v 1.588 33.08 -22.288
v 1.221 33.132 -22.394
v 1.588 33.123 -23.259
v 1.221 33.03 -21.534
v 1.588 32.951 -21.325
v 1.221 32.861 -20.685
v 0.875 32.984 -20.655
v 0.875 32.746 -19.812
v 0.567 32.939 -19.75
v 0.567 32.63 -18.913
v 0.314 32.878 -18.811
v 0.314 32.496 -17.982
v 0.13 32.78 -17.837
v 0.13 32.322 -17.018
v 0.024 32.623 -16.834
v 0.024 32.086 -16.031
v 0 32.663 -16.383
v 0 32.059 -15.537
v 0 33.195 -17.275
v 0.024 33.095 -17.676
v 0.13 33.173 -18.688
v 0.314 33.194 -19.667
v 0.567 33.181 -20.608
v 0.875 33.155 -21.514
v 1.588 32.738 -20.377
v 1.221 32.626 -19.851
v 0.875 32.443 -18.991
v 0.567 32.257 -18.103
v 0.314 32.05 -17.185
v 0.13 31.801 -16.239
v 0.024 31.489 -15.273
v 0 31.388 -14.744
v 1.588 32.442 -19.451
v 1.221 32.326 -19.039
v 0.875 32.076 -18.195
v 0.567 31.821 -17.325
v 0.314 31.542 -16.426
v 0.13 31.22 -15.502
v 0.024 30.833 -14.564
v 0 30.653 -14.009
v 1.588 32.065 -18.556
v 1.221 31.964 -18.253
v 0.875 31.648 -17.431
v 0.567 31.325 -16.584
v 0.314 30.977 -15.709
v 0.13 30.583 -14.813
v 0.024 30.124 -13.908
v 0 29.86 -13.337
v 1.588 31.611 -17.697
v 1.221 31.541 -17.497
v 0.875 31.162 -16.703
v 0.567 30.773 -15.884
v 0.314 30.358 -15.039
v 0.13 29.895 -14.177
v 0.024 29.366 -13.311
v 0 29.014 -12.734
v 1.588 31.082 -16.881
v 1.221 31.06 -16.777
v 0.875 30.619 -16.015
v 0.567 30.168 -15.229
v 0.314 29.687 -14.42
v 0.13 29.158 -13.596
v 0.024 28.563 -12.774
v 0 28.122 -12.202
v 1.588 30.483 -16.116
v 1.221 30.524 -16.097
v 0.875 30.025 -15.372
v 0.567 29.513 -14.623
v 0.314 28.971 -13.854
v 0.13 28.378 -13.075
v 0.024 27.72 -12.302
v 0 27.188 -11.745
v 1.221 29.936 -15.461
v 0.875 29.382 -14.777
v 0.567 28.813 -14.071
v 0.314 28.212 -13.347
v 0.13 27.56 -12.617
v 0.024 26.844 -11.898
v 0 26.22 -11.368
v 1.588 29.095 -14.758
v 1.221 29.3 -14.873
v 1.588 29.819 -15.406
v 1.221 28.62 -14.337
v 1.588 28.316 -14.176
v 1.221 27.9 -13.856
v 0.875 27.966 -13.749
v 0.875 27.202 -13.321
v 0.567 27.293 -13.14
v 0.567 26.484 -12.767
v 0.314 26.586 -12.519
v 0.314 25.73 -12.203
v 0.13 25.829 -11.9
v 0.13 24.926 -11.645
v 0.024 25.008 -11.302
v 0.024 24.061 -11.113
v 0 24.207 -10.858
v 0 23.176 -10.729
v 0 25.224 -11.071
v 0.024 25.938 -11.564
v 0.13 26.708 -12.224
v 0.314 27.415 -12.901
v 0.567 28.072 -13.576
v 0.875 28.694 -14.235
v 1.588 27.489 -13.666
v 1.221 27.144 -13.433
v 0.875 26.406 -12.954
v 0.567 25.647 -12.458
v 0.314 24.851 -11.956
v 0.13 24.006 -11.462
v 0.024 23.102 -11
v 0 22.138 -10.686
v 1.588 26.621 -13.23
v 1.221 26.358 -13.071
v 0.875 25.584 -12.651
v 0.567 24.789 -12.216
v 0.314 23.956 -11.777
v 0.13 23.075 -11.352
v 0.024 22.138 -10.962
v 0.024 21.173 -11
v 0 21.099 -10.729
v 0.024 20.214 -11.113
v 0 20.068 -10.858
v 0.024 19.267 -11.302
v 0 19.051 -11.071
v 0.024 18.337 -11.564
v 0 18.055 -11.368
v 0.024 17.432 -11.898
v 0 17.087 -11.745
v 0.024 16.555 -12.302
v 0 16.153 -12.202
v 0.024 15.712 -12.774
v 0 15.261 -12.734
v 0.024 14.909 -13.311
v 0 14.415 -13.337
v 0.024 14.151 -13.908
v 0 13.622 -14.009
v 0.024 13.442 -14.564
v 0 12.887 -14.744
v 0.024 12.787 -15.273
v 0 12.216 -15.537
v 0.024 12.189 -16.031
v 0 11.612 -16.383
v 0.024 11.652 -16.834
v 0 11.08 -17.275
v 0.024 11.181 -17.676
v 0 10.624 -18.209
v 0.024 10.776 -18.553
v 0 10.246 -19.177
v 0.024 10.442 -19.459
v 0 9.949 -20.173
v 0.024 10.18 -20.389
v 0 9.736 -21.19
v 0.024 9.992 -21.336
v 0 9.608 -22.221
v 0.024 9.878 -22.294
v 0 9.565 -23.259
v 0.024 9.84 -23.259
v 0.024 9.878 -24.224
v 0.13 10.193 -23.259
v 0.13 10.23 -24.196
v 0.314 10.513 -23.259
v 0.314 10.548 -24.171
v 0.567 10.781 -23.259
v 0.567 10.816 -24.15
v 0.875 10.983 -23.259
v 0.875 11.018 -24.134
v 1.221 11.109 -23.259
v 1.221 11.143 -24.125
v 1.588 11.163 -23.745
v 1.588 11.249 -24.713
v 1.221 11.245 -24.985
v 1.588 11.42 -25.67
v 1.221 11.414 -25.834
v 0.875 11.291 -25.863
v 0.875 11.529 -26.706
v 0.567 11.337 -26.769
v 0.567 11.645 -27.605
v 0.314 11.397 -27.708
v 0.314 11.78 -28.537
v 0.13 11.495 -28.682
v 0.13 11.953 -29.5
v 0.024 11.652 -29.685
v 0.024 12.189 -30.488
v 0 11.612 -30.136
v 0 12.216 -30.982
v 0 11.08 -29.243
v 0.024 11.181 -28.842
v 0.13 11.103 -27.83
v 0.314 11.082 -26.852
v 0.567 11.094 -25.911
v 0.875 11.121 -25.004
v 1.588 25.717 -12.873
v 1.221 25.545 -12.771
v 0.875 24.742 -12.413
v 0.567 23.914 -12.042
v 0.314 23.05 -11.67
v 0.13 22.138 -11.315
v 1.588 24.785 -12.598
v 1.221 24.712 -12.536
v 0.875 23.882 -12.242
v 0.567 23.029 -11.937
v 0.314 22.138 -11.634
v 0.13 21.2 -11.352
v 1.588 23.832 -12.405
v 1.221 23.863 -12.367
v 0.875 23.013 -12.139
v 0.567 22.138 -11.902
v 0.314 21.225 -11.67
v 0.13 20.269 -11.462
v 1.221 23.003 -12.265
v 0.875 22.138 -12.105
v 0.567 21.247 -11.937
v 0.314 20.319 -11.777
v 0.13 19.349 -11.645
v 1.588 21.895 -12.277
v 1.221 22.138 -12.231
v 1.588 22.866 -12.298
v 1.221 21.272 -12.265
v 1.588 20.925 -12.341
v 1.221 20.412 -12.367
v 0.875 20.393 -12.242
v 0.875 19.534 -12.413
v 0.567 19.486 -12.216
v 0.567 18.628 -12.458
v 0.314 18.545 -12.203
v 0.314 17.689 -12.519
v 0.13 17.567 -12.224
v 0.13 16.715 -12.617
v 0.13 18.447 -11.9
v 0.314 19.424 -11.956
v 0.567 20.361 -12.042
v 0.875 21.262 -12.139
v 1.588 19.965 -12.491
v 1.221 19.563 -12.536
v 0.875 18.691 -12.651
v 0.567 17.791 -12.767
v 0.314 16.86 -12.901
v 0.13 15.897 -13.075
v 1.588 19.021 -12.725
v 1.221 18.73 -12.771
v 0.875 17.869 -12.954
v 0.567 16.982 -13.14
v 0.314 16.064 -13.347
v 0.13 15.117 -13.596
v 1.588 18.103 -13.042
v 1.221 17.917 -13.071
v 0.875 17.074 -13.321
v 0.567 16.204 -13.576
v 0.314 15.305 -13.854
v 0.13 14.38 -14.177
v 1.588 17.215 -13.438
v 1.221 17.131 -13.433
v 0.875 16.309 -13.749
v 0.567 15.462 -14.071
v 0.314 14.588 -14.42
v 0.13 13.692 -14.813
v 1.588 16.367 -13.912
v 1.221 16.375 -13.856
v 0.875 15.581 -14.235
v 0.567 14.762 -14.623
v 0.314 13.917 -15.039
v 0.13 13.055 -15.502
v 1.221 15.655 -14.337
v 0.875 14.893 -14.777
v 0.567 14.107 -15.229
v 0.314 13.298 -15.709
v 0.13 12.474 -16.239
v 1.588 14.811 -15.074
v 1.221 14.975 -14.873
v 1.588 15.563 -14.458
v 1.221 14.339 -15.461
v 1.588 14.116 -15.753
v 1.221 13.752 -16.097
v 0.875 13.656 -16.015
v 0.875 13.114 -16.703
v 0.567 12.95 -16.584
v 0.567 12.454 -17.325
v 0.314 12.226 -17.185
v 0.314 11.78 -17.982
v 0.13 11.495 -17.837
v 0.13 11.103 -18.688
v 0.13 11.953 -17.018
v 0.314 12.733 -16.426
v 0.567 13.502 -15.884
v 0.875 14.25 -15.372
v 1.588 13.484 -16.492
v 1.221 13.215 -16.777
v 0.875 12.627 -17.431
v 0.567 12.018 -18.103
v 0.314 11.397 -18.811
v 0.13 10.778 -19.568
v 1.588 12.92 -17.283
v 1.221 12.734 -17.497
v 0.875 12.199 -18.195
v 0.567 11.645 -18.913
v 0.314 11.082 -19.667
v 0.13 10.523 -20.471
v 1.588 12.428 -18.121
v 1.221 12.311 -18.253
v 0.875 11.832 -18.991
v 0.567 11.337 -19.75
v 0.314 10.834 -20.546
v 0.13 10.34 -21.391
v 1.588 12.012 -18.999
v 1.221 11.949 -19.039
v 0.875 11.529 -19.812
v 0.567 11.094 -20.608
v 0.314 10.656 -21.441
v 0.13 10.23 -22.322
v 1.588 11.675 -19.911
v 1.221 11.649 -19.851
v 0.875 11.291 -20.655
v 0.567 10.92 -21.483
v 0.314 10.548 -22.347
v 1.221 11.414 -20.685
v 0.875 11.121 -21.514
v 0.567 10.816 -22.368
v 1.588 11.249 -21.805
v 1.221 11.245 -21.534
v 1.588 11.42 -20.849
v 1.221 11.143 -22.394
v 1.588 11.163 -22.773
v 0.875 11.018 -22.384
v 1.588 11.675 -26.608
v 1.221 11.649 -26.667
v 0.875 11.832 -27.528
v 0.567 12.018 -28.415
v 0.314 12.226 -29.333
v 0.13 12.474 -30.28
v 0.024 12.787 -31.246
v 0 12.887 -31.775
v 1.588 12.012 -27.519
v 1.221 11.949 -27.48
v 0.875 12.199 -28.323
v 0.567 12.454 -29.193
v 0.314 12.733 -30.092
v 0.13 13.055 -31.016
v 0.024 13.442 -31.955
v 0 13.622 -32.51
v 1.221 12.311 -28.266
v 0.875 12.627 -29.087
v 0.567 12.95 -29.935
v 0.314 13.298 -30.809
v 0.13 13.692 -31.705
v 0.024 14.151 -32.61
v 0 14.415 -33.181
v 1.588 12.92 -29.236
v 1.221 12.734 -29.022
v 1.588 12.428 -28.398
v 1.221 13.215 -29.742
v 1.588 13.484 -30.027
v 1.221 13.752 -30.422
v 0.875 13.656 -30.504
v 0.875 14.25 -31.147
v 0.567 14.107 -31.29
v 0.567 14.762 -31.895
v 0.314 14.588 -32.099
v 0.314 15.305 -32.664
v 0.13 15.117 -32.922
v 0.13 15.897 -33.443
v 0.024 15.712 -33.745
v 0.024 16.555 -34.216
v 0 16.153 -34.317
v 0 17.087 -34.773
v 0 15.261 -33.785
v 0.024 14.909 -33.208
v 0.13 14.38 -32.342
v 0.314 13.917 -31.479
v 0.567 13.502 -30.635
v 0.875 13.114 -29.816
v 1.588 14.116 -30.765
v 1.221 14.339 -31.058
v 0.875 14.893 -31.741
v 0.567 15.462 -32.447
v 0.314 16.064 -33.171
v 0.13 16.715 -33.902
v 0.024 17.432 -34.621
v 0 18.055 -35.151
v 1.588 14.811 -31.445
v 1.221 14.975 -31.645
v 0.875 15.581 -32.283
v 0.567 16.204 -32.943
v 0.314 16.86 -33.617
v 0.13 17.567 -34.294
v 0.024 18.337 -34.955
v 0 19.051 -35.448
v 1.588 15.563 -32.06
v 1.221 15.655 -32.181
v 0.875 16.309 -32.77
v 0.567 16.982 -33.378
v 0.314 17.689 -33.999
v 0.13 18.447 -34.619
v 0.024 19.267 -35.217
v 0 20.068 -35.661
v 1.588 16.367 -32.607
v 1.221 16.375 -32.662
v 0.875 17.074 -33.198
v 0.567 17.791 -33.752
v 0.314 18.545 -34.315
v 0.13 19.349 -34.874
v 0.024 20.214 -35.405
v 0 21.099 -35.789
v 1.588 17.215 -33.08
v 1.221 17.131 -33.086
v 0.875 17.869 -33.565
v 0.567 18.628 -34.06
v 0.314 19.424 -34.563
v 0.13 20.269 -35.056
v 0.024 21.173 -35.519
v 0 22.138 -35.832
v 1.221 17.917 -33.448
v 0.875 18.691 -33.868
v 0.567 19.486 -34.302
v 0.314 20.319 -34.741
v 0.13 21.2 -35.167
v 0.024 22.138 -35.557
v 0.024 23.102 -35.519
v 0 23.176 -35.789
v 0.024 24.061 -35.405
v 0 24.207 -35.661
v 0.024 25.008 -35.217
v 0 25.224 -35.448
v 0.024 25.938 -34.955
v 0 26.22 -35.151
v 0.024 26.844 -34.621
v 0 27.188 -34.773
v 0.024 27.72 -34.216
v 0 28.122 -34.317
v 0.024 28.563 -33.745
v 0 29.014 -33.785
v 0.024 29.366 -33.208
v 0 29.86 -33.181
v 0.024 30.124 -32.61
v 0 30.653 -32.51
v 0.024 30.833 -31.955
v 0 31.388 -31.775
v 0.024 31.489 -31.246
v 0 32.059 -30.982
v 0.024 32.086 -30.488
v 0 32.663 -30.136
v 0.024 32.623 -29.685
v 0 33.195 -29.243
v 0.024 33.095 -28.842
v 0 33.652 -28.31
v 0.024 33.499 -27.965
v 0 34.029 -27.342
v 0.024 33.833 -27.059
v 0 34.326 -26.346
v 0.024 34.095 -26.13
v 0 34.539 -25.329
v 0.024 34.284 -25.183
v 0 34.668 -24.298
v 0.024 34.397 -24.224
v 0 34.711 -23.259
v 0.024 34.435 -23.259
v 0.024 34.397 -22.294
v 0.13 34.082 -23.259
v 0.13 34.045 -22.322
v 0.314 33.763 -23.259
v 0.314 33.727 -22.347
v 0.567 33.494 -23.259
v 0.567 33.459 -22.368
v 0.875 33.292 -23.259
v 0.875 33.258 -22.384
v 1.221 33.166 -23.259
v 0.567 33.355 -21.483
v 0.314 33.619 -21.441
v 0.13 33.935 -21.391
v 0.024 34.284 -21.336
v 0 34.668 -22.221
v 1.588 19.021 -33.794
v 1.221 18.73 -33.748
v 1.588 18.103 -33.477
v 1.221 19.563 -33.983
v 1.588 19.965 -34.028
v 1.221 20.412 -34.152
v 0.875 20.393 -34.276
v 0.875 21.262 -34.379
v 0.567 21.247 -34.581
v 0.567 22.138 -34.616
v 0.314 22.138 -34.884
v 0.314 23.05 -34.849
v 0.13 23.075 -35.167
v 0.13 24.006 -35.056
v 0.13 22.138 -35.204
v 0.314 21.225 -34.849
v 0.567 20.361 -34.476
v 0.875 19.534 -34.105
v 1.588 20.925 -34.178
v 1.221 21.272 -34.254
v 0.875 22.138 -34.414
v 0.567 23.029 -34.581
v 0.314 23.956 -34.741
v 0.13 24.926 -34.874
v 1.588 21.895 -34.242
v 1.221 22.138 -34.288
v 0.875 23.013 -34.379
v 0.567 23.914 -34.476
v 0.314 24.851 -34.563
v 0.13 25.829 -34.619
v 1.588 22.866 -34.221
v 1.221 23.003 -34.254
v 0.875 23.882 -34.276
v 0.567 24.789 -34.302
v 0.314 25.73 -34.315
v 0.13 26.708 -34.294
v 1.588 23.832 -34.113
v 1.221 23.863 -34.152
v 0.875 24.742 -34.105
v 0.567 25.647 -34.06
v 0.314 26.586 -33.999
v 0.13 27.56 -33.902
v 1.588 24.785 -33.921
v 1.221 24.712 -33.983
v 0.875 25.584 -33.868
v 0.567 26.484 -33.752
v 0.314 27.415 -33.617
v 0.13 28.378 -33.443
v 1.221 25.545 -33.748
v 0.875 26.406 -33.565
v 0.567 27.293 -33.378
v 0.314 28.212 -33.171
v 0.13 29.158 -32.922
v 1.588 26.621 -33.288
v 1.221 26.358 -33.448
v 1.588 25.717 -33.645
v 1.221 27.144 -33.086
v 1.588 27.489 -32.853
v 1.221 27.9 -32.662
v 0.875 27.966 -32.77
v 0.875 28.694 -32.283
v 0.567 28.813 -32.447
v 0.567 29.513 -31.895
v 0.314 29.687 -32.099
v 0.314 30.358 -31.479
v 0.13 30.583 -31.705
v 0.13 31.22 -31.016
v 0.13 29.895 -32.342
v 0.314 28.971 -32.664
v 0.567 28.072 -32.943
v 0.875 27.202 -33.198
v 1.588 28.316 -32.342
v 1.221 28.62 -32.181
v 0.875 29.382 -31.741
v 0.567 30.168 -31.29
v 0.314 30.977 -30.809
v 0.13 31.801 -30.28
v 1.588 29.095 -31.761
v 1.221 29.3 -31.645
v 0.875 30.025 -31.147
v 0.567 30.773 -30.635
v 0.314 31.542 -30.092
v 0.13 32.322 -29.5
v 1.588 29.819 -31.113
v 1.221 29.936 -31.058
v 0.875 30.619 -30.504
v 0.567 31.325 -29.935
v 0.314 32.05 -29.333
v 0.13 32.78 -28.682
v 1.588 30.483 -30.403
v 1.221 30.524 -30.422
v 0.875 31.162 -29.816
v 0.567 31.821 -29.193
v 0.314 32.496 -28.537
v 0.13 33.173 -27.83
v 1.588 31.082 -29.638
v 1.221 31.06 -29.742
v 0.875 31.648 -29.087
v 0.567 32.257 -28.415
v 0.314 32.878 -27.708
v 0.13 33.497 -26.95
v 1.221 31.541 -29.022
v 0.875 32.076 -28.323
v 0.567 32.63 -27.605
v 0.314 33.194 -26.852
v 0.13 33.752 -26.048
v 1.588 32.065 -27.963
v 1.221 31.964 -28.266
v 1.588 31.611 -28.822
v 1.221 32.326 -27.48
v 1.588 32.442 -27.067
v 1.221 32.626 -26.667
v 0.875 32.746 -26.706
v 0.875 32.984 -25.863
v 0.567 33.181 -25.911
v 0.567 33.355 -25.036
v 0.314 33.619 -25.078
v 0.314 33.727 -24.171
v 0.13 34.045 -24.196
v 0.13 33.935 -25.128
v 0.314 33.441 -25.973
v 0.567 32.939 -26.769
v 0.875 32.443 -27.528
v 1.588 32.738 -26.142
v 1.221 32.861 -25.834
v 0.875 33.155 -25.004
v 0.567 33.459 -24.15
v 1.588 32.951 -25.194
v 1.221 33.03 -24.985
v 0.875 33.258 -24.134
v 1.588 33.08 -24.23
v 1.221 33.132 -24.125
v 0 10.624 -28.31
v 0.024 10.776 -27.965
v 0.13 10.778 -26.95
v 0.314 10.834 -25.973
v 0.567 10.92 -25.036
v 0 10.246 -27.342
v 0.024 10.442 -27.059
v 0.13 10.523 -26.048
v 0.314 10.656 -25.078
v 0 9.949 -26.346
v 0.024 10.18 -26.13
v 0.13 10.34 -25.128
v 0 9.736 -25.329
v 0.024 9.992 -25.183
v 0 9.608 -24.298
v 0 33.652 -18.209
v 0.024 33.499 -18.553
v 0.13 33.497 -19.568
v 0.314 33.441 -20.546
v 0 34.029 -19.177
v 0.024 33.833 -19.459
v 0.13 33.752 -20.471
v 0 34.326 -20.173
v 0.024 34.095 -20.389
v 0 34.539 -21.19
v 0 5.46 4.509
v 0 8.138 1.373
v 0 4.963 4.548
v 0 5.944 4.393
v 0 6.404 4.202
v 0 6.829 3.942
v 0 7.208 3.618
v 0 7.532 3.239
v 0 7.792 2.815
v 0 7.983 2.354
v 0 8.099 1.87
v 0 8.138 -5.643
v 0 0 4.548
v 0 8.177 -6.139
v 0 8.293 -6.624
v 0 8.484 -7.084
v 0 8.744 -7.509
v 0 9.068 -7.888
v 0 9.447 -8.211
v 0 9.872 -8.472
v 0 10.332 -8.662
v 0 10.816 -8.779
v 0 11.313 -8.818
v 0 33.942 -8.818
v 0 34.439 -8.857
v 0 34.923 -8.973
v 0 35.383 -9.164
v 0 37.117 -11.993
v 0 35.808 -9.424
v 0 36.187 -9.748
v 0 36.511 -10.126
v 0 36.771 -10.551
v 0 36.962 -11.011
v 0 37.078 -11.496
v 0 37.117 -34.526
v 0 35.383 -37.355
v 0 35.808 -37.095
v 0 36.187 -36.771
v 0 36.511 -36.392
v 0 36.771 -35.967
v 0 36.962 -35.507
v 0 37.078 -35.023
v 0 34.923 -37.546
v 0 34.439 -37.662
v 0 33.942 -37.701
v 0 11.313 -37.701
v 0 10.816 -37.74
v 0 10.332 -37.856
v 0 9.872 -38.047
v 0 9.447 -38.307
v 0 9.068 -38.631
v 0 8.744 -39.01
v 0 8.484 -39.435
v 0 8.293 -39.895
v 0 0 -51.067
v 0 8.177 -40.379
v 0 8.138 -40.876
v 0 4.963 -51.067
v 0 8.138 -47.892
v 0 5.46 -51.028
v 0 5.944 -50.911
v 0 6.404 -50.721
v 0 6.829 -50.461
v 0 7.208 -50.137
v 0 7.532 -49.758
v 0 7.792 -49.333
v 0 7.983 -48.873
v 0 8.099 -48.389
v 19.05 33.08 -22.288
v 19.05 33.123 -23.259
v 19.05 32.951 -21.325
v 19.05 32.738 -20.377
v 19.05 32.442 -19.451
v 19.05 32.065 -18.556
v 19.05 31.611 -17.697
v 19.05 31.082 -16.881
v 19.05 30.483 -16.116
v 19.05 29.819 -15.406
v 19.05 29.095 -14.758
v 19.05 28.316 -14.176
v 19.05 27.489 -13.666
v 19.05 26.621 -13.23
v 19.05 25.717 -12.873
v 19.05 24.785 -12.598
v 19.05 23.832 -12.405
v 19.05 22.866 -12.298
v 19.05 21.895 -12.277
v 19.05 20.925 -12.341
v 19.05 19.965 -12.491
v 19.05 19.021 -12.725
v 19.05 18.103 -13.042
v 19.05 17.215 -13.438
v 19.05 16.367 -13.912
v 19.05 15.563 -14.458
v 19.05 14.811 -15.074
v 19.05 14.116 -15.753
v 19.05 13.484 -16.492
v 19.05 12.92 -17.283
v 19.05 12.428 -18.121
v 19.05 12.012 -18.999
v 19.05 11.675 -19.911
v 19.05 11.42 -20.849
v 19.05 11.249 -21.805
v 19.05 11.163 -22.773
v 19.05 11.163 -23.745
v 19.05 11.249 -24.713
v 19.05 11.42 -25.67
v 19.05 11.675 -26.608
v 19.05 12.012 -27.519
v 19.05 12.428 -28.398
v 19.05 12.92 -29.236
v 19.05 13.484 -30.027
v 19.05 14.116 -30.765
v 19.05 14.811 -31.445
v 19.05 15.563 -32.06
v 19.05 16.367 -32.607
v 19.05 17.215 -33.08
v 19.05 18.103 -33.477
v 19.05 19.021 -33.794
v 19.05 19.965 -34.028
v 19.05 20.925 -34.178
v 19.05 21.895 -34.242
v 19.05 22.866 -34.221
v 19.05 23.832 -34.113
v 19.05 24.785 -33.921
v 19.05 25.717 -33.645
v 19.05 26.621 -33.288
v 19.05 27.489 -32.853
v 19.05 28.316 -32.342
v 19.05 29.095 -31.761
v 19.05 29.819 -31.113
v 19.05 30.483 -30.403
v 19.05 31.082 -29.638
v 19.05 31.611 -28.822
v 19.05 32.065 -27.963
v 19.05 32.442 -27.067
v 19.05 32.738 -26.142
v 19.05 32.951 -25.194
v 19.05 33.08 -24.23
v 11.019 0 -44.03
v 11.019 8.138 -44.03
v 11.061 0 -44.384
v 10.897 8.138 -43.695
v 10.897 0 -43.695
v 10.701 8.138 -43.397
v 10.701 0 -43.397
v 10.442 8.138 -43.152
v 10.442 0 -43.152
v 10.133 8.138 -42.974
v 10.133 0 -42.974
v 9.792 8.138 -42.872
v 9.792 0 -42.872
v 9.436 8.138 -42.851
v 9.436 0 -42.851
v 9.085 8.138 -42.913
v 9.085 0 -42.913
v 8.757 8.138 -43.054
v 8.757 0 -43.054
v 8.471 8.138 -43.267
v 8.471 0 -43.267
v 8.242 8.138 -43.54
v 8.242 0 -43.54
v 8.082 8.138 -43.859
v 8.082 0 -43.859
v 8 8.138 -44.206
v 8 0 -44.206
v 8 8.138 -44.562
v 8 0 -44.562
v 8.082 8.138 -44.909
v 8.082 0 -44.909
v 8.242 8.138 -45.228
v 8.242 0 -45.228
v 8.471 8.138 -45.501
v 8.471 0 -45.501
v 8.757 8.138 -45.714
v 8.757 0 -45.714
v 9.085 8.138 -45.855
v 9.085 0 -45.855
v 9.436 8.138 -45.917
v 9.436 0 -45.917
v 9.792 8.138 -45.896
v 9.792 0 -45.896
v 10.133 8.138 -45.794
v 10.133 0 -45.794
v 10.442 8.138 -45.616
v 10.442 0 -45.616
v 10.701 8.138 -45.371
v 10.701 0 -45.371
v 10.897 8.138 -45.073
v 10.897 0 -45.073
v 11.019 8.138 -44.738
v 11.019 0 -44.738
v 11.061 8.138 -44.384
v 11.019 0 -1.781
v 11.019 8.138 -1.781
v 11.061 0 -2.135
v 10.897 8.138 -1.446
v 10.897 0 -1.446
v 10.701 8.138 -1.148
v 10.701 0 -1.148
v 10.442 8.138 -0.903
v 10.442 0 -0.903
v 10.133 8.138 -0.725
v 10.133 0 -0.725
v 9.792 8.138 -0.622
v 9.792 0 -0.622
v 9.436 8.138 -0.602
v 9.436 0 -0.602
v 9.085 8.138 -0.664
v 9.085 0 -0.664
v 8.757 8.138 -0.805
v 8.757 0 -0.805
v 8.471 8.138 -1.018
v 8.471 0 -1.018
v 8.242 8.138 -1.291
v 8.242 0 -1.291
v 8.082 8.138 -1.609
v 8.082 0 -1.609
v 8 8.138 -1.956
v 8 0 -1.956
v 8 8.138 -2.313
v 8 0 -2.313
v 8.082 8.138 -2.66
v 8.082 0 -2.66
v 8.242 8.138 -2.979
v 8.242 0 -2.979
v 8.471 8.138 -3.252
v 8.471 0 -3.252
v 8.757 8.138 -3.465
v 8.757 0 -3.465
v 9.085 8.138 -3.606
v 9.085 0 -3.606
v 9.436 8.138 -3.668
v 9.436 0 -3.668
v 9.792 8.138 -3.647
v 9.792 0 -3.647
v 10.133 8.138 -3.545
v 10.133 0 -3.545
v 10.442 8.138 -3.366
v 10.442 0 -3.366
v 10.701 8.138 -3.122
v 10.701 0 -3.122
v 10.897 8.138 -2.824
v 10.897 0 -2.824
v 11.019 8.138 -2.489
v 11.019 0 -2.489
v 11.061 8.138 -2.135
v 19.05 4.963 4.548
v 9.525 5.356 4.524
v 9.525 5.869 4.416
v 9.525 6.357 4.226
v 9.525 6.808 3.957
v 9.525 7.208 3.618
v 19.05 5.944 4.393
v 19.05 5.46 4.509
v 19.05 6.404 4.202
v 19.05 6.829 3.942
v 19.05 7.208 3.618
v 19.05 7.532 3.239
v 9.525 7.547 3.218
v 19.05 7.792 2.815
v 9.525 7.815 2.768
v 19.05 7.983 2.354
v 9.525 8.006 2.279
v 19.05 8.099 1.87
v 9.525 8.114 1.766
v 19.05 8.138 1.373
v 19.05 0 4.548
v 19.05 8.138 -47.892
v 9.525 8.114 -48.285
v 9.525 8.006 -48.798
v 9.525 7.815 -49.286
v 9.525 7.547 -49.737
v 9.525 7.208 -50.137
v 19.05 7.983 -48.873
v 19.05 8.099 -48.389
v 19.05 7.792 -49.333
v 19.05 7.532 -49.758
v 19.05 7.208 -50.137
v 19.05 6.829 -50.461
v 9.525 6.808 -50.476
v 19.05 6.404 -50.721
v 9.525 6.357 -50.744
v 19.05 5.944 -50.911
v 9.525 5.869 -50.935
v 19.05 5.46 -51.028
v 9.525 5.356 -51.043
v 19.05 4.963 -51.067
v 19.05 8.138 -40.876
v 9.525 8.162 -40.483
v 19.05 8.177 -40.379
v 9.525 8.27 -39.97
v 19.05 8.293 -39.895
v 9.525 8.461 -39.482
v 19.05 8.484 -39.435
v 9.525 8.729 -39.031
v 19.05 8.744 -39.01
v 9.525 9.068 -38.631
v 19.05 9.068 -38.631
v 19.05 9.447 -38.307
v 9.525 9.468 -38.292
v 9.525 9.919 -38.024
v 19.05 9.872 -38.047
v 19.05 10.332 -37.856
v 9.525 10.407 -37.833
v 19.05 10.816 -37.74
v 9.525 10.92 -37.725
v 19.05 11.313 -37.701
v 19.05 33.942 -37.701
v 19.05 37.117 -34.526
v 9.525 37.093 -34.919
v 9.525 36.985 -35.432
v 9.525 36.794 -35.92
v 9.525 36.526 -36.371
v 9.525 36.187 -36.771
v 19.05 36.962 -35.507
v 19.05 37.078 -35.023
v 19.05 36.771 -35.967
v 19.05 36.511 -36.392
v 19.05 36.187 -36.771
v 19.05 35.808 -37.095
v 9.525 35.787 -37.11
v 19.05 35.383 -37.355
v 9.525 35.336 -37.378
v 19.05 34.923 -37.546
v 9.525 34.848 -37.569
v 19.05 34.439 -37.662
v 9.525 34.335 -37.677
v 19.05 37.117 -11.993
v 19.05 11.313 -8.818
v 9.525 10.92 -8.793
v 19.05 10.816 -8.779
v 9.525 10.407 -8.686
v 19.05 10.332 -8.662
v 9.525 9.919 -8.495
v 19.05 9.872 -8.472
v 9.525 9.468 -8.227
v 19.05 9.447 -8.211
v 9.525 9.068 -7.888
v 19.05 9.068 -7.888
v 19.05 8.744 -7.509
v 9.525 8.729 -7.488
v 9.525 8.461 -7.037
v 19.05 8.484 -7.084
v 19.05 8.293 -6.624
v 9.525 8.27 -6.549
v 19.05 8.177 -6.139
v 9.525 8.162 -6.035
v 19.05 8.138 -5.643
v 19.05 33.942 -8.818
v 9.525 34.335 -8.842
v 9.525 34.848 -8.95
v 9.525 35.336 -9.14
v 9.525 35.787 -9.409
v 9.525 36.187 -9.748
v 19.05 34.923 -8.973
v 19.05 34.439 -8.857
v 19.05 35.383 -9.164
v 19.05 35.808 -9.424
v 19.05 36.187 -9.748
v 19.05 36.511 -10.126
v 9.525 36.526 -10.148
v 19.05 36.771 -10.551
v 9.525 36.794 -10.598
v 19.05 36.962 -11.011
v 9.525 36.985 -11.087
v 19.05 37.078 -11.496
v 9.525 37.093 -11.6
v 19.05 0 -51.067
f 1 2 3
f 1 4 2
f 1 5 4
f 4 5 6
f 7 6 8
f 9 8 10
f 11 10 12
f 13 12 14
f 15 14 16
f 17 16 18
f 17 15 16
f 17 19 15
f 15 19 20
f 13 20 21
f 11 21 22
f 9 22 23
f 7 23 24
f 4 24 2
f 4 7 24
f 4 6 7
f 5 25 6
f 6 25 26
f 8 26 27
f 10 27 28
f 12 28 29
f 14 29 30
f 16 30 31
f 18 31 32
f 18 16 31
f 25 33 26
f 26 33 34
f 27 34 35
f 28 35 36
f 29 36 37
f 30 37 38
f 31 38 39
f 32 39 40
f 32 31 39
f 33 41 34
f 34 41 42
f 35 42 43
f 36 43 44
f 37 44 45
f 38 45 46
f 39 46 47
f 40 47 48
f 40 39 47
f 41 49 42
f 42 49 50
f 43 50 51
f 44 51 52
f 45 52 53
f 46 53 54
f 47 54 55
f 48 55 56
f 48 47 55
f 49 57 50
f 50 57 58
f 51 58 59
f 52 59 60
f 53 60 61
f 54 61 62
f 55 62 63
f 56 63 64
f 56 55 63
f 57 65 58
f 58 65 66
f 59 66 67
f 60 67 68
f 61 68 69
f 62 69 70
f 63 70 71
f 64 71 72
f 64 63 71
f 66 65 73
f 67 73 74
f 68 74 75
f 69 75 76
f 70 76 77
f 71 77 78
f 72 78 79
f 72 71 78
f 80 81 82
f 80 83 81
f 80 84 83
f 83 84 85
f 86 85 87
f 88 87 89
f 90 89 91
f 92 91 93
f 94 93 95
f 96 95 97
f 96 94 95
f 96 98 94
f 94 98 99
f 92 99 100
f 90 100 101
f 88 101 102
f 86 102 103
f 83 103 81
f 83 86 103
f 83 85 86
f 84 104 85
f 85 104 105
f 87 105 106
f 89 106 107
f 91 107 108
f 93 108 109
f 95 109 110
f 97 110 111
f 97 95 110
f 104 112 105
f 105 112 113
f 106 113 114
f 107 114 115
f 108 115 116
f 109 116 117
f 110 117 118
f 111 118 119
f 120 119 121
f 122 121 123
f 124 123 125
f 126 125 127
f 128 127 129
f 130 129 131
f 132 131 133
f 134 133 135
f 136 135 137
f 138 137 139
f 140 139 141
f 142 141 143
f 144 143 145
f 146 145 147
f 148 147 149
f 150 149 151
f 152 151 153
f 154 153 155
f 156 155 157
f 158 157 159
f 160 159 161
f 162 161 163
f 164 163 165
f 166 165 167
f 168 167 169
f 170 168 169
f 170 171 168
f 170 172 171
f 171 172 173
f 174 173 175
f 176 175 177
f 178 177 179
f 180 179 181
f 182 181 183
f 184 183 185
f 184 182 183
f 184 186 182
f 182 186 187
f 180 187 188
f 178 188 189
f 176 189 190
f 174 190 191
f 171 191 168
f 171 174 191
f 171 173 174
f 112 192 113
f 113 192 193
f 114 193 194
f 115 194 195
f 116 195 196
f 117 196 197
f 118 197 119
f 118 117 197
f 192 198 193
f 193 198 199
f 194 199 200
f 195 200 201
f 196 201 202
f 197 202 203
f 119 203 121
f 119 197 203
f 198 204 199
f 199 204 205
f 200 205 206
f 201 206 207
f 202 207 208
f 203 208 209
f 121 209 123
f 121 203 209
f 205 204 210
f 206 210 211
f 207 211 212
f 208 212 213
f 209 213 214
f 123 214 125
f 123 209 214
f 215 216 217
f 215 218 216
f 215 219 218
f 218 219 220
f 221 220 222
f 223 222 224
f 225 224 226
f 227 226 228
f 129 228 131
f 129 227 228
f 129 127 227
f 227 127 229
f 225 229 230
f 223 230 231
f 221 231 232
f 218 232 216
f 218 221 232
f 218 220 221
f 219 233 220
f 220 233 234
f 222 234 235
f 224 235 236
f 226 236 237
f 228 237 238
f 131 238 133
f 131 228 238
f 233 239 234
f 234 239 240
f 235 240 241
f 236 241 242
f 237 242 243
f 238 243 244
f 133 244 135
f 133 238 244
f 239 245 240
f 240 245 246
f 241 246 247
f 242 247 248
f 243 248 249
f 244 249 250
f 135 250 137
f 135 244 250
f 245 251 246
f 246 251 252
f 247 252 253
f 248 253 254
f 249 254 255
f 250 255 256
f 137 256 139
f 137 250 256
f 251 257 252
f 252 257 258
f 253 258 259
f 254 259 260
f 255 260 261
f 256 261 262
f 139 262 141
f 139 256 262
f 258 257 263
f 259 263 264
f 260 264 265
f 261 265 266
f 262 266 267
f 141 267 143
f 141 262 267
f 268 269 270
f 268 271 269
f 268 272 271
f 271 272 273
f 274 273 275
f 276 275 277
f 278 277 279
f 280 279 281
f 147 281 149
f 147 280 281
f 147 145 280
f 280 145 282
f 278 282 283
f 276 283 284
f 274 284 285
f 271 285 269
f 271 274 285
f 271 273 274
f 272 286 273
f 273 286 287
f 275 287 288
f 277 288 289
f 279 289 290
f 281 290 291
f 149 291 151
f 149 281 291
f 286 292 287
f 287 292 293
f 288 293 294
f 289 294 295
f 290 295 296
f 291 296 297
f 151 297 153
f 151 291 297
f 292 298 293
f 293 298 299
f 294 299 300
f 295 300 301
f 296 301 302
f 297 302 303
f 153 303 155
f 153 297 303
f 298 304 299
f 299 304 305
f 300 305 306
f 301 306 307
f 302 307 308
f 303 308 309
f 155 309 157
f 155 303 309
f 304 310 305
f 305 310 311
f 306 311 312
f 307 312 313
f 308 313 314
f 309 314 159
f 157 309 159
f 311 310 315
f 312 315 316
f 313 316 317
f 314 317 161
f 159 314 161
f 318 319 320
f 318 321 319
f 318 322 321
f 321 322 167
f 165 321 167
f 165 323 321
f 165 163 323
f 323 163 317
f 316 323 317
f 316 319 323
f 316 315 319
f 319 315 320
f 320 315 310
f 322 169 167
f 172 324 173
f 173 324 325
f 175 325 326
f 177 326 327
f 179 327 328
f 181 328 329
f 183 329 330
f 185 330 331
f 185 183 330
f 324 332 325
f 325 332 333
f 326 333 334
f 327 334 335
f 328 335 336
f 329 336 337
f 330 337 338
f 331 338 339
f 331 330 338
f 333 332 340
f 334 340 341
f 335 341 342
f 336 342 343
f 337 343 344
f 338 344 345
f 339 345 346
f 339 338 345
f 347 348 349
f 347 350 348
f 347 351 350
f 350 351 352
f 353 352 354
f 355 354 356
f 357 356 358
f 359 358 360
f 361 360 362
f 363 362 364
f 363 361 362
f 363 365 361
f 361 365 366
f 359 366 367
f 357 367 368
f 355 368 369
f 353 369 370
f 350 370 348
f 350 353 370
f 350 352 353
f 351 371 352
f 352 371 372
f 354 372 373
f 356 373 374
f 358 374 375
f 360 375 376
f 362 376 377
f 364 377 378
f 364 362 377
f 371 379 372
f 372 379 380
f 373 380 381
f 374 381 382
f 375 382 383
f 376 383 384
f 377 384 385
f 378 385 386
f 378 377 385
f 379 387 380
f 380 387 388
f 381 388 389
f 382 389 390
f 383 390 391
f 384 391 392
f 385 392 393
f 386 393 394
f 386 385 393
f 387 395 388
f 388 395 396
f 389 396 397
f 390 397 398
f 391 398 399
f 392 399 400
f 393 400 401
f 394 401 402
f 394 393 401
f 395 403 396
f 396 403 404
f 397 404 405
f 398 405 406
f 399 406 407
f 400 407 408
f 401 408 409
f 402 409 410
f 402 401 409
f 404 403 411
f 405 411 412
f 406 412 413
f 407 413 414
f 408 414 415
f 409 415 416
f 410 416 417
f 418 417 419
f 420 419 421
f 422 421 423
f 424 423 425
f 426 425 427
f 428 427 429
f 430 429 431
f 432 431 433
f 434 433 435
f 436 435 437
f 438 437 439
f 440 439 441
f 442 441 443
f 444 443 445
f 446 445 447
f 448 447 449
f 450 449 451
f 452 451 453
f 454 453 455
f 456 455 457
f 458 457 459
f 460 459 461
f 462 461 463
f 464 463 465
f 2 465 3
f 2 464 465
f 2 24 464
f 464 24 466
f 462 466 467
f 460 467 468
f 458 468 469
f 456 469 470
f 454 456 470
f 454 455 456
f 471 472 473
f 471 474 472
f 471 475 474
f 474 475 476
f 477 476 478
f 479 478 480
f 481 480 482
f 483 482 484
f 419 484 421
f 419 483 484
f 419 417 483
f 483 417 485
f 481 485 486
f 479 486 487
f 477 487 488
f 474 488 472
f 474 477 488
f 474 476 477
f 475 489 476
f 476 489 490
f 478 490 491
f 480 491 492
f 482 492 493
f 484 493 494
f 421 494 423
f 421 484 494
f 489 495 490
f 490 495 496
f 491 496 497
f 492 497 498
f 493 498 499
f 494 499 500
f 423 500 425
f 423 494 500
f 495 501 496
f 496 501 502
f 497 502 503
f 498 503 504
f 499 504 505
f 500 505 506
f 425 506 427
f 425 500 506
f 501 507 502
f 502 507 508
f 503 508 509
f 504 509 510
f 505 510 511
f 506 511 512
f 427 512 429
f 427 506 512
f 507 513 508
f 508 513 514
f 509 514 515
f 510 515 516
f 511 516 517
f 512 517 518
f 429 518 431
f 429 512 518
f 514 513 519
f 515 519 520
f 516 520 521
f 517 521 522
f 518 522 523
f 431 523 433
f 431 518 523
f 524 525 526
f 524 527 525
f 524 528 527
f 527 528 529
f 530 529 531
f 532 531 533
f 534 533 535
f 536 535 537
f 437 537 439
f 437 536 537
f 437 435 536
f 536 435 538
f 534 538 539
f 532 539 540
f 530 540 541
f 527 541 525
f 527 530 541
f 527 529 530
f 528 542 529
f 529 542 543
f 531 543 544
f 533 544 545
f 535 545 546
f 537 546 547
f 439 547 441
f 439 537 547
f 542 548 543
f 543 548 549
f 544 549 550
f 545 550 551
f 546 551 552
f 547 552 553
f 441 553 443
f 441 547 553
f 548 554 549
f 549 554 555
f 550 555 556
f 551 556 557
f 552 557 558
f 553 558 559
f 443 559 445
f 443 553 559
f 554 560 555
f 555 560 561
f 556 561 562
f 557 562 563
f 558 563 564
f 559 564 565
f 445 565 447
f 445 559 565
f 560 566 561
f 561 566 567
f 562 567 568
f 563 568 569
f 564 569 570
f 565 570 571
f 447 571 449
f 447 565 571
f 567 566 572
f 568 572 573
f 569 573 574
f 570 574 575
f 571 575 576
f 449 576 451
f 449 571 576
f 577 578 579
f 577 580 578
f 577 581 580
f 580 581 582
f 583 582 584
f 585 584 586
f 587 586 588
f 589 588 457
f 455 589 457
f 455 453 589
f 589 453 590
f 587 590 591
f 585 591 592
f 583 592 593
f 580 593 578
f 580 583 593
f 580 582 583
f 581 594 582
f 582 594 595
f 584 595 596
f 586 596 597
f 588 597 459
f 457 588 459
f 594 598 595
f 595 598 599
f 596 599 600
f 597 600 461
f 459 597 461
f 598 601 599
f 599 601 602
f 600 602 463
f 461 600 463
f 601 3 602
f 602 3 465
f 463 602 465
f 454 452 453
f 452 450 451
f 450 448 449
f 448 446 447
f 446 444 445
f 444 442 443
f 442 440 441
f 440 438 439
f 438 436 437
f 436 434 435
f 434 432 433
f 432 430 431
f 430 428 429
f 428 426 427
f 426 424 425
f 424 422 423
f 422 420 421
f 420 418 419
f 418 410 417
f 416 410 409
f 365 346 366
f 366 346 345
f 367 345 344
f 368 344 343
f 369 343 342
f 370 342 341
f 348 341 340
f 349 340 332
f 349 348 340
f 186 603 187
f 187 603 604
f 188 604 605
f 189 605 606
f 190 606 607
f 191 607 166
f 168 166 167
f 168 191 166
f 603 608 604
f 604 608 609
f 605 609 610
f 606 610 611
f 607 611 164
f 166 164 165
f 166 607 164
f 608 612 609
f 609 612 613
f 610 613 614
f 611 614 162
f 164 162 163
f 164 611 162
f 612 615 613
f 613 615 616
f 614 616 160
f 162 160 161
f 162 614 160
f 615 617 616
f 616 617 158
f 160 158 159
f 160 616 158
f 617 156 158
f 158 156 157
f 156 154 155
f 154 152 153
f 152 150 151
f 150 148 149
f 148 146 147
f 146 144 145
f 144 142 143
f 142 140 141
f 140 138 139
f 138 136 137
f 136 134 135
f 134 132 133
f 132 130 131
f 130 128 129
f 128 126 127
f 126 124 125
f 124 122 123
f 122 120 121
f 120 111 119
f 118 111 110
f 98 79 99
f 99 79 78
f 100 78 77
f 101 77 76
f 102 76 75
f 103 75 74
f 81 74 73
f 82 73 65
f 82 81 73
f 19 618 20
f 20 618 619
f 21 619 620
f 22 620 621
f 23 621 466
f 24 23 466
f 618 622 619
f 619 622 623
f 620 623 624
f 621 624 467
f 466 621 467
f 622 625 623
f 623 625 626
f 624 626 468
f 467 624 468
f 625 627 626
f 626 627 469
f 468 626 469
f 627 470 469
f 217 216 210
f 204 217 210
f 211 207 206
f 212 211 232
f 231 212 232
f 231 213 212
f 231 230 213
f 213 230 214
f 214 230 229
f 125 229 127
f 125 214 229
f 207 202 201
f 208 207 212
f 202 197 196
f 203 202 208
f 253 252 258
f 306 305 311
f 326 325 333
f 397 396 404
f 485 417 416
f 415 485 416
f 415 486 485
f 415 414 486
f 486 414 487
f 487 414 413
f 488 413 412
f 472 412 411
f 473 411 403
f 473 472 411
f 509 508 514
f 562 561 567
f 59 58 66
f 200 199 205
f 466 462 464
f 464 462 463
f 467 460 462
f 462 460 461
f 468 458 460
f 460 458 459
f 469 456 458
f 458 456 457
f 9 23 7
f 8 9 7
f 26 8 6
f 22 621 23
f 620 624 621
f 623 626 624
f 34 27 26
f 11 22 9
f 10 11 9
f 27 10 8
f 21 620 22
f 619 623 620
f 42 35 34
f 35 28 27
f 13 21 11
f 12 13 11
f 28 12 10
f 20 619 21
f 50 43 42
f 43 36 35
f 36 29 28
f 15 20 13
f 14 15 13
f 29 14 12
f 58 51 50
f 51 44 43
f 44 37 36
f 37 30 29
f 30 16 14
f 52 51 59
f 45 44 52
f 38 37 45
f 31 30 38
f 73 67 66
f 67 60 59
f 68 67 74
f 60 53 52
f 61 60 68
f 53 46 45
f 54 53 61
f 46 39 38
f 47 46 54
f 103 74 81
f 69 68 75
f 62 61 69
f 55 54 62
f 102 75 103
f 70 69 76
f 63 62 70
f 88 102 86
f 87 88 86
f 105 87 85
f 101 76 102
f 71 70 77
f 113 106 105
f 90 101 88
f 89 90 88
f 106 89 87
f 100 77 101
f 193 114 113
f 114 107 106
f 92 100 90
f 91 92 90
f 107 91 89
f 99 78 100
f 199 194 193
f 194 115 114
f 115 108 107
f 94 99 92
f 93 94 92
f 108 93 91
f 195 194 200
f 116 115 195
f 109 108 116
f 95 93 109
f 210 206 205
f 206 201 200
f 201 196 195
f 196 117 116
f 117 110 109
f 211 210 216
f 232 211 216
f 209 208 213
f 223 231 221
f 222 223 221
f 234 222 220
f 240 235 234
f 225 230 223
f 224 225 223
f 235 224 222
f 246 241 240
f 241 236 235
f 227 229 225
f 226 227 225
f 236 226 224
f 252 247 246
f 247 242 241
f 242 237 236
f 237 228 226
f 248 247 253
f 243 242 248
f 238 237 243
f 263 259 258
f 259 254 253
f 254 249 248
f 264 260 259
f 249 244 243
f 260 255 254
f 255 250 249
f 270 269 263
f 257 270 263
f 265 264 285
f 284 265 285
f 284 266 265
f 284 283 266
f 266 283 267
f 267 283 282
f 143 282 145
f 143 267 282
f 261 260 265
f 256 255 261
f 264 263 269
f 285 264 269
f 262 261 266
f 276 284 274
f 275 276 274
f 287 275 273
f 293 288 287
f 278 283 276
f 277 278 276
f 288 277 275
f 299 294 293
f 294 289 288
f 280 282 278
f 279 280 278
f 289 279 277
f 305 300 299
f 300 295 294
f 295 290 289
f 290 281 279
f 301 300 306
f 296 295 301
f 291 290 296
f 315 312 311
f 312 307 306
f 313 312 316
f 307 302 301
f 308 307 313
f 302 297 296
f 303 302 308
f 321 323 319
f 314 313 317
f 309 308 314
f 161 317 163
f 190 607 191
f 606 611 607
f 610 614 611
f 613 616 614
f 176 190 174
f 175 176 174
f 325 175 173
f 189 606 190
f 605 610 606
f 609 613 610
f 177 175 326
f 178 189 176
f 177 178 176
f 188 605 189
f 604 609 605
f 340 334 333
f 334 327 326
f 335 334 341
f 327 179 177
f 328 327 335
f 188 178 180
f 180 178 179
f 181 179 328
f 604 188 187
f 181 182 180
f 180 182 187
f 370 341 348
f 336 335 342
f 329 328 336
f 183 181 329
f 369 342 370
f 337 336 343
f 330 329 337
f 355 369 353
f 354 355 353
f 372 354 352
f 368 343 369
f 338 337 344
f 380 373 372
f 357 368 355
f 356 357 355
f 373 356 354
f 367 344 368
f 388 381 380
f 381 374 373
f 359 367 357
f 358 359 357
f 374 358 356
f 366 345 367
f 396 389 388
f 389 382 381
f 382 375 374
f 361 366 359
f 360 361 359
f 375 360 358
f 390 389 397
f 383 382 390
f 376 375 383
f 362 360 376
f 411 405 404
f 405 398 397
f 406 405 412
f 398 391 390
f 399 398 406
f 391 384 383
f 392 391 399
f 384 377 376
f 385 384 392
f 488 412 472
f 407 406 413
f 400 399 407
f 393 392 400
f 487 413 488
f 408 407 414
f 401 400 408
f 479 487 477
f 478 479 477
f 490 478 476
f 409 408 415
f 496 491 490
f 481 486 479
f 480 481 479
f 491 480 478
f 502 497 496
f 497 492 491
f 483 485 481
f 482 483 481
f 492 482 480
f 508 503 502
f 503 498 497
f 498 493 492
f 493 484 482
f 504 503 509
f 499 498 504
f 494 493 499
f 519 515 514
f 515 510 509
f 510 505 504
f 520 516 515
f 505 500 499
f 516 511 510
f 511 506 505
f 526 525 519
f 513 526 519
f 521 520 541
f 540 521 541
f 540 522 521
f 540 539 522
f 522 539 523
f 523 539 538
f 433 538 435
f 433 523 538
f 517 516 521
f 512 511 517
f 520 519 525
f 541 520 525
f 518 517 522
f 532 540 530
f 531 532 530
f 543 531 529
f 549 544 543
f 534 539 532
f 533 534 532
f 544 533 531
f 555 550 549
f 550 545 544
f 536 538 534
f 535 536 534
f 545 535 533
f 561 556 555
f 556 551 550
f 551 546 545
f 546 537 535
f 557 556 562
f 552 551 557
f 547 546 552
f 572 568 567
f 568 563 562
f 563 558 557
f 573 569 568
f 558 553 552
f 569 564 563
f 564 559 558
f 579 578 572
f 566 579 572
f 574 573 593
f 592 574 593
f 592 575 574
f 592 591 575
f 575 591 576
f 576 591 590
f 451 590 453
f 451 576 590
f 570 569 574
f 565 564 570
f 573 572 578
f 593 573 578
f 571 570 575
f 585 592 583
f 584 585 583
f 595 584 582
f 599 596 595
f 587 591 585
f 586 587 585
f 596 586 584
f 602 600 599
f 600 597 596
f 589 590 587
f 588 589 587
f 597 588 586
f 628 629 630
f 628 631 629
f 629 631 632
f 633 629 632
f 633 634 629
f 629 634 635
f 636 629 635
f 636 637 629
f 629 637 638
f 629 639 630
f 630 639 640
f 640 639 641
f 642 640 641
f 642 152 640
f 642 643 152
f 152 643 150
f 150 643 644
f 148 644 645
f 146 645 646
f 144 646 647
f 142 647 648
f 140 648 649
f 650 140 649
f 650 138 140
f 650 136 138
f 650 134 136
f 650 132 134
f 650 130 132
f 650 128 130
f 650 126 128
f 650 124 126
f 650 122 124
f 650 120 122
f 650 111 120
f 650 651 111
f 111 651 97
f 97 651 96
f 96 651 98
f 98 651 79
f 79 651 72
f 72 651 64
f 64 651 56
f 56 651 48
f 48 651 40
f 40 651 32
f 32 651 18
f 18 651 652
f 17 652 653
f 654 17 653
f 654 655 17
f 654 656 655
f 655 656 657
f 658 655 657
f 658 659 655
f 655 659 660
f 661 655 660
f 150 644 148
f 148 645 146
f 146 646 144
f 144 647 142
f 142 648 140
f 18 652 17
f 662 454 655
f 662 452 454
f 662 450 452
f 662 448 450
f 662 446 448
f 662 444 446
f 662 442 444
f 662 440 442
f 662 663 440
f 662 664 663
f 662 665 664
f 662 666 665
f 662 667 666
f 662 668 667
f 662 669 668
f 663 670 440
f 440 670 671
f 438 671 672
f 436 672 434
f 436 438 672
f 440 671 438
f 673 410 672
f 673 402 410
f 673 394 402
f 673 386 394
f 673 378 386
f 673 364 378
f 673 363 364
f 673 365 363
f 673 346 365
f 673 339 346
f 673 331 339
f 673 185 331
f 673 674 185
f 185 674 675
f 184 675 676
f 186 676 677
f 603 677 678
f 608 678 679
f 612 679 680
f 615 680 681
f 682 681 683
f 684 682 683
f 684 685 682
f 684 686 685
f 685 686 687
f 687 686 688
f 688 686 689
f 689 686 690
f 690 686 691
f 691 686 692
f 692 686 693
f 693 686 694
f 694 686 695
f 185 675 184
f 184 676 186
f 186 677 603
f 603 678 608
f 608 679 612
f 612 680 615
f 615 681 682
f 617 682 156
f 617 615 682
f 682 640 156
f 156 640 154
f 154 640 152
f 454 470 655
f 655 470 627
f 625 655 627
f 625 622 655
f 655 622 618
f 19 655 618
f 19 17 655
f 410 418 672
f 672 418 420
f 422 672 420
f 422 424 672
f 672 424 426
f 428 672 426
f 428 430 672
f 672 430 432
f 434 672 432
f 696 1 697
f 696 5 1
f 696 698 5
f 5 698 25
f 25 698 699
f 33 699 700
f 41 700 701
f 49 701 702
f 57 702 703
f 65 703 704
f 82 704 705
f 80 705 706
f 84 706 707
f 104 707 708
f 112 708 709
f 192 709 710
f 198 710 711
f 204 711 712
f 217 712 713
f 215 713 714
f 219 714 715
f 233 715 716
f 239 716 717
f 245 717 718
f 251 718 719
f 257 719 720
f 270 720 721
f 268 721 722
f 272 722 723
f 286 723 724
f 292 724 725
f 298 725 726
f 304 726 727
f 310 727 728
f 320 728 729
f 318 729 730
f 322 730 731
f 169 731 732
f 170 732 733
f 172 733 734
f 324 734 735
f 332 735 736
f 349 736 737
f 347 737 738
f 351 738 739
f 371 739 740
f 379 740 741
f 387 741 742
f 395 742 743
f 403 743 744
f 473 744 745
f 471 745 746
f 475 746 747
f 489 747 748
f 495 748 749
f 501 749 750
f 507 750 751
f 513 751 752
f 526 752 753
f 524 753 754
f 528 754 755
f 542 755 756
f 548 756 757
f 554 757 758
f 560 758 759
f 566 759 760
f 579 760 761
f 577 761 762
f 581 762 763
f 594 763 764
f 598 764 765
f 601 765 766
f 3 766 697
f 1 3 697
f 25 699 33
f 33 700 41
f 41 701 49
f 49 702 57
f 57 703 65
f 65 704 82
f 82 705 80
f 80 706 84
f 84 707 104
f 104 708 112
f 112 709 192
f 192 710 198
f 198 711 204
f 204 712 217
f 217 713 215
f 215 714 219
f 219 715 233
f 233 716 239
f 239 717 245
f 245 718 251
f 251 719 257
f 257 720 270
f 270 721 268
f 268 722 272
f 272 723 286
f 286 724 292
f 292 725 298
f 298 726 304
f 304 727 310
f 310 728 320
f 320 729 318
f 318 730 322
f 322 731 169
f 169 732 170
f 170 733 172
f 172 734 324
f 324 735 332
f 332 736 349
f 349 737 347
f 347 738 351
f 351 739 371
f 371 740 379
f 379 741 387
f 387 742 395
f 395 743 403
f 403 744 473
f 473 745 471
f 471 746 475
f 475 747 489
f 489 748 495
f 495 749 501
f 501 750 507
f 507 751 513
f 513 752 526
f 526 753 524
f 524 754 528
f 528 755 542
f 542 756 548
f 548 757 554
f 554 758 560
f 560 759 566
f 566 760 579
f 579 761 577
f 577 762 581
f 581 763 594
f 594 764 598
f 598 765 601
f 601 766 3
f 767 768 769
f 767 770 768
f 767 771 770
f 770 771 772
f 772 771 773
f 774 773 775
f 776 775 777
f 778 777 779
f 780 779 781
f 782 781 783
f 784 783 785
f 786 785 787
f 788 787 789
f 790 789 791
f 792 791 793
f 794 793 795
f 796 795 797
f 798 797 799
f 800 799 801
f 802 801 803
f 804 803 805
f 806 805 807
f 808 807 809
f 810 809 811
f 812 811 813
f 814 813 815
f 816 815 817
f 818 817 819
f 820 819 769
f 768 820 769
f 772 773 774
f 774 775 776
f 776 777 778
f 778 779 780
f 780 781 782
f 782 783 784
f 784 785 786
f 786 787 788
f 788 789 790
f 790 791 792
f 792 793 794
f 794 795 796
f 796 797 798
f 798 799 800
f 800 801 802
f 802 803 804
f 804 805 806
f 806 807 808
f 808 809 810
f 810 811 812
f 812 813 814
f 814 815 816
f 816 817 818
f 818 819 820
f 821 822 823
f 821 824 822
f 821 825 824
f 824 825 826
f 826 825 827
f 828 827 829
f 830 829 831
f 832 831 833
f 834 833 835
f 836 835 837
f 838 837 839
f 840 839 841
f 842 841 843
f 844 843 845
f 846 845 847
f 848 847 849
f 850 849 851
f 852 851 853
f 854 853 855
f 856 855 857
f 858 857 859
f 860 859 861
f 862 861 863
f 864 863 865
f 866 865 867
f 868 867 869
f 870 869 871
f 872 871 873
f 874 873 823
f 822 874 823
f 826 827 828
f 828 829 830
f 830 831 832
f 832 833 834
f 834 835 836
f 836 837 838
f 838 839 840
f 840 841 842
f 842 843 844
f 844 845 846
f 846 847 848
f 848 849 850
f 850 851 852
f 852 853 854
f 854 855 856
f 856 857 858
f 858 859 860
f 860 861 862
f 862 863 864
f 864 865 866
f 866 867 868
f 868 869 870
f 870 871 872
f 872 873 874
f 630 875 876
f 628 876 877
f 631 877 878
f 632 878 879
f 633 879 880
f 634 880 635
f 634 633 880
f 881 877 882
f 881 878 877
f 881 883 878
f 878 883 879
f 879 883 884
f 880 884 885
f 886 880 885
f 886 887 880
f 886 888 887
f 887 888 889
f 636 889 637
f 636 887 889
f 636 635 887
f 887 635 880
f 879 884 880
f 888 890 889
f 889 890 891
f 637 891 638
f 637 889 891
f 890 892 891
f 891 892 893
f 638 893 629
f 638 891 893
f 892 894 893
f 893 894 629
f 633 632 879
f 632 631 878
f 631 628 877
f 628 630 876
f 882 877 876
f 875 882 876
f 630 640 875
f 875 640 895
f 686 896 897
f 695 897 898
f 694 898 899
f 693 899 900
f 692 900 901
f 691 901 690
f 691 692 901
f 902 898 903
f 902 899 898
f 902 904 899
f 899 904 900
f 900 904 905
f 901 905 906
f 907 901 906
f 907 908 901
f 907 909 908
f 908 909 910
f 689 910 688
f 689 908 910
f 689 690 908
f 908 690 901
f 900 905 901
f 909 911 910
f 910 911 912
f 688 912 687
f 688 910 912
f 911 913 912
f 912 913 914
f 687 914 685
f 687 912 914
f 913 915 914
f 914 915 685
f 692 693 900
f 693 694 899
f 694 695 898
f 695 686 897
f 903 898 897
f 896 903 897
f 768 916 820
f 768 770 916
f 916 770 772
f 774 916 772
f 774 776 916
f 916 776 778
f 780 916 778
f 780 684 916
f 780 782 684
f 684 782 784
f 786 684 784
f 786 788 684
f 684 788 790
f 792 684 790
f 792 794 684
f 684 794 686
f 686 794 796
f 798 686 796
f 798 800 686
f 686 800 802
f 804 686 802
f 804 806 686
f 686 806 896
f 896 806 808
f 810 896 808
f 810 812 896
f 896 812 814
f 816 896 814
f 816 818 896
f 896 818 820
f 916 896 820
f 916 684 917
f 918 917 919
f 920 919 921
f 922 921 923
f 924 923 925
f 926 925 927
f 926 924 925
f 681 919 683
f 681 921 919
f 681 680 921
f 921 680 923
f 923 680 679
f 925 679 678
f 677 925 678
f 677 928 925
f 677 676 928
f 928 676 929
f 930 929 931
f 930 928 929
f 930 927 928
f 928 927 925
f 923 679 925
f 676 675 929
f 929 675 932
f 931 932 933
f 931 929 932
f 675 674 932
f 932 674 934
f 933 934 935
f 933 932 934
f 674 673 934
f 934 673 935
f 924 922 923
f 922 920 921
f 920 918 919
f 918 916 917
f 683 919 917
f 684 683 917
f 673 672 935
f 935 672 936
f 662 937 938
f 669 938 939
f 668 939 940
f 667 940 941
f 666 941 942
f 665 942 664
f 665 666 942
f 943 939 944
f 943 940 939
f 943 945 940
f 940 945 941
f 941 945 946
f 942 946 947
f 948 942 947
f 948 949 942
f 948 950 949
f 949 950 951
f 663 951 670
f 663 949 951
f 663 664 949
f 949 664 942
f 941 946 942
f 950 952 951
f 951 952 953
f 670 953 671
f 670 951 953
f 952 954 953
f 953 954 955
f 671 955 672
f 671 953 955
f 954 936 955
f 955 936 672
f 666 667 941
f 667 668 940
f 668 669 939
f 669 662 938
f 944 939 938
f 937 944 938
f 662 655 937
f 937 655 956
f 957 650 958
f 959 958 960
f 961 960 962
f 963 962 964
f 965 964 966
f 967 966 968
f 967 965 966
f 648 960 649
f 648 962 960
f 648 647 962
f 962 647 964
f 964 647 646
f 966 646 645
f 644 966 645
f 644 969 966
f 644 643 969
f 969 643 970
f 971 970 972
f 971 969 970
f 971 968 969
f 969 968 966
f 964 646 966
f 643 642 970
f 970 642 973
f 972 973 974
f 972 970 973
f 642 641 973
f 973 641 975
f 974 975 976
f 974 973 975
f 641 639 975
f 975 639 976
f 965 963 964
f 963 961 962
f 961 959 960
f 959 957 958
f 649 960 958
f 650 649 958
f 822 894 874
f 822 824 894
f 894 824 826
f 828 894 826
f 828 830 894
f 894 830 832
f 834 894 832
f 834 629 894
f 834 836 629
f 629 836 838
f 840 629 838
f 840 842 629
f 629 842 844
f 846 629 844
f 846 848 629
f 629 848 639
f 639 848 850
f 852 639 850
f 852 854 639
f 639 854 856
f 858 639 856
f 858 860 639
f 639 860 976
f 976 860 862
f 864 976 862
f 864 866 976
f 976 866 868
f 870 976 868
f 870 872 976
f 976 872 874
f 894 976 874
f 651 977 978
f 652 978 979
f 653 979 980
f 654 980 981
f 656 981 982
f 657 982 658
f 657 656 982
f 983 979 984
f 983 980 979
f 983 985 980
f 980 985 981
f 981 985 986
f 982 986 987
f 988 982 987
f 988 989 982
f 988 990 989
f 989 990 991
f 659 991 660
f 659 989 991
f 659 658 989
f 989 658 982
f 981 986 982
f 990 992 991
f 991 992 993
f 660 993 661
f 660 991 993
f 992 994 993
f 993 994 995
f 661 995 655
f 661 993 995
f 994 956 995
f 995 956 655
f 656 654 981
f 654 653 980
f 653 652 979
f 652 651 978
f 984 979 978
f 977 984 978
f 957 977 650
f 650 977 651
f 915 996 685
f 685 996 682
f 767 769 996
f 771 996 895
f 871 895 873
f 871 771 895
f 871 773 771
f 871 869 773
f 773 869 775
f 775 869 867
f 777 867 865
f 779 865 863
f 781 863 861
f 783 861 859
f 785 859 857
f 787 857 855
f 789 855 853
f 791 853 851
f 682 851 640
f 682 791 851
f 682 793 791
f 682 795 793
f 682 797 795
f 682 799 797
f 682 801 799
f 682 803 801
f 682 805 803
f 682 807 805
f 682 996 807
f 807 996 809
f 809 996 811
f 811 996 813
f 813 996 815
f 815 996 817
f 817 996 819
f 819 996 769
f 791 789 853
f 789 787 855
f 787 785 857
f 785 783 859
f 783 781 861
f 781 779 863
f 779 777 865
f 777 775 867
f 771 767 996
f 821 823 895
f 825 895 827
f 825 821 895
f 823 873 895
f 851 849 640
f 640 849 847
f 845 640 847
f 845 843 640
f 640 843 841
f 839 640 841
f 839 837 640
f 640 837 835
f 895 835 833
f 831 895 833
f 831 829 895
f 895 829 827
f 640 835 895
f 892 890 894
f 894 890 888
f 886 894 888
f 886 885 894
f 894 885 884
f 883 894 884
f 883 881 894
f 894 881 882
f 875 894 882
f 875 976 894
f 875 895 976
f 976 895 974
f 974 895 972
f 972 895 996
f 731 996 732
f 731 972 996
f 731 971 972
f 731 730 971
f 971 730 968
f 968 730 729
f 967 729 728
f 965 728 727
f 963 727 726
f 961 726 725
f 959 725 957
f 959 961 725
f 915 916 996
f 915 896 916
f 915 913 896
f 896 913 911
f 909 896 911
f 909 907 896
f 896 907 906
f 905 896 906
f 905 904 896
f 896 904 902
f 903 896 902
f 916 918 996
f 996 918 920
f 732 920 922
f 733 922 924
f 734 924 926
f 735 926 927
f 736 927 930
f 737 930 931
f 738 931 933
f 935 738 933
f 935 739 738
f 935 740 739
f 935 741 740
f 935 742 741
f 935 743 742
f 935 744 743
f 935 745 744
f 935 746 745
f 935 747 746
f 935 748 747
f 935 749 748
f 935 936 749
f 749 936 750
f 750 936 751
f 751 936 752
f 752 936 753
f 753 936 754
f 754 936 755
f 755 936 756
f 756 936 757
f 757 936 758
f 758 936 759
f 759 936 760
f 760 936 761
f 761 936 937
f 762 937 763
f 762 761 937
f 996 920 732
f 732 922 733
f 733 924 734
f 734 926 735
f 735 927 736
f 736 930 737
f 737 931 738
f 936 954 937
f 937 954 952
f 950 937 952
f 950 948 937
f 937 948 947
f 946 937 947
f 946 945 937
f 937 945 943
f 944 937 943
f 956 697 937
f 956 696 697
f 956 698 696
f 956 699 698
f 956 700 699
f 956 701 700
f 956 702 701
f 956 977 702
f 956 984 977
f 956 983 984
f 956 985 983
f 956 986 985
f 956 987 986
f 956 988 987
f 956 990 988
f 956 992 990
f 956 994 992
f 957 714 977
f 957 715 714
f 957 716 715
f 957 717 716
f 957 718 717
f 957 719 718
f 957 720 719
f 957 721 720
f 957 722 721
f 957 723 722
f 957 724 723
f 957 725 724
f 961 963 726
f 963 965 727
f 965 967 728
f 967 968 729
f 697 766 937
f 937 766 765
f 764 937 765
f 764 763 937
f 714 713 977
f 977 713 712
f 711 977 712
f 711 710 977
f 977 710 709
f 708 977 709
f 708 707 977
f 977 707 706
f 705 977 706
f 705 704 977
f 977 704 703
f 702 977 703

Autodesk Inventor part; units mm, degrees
ref_plane "YZ Plane" through (0, 0, 0) normal (1, 0, 0) x (0, 1, 0)
ref_plane "XZ Plane" through (0, 0, 0) normal (0, 1, 0) x (-1, 0, 0)
ref_plane "XY Plane" through (0, 0, 0) normal (0, 0, 1) x (1, 0, 0)
sketch "Sketch1" plane through (0, 0, 0) normal (1, 0, 0) x (0, 1, 0)
  line L0 (0, 4.5482) -> (0, -51.0669)
  line L1 (0, -51.0669) -> (8.138, -51.0669)
  line L2 (8.138, -51.0669) -> (8.138, -37.701)
  line L3 (8.138, -37.701) -> (37.1169, -37.701)
  line L4 (37.1169, -37.701) -> (37.1169, -8.8176)
  line L5 (37.1169, -8.8176) -> (8.138, -8.8176)
  line L6 (8.138, -8.8176) -> (8.138, 4.5482)
  line L7 (8.138, 4.5482) -> (0, 4.5482)
  line L8 (37.1169, -23.2593) -> (0, -23.2593) construction
  circle A0 centre (22.1376, -23.2593) radius 10.9855
  dimension "d0" = 21.971
extrude "Extrusion1" add sketch "Sketch1" along normal blind 19.05
fillet "Fillet1" radius 3.175 6 edges at (9.525, 37.1169, -8.8176) (9.525, 8.138, -8.8176) (9.525, 37.1169, -37.701) (9.525, 8.138, -37.701) (9.525, 8.138, -51.0669) (9.525, 8.138, 4.5482)
sketch "Sketch2" plane through (0, 8.138, -40.876) normal (0, 1, 0) x (1, 0, 0)
  line L0 (0, 7.0159) -> (19.05, 7.0159) projected
  line L1 (0, 7.0159) -> (0, 0) projected
  line L2 (19.05, 0) -> (0, 0) projected
  line L3 (19.05, 7.0159) -> (19.05, 0) projected
  line L4 (19.05, -42.2493) -> (0, -42.2493) projected
  line L5 (19.05, -35.2334) -> (19.05, -42.2493) projected
  line L6 (0, -35.2334) -> (19.05, -35.2334) projected
  line L7 (0, -35.2334) -> (0, -42.2493) projected
  line L8 (0, 7.0159) -> (19.05, 7.0159) construction
  line L9 (9.525, 7.0159) -> (9.525, 0) construction
  line L10 (0, -35.2334) -> (19.05, -35.2334) construction
  line L11 (9.525, -35.2334) -> (9.525, -42.2493) construction
  circle A0 centre (9.525, 3.5079) radius 1.5356
  circle A1 centre (9.525, -38.7413) radius 1.5356
  point P0 (0, -40.876)
  dimension "d4" = 3.0712
extrude "Extrusion2" cut sketch "Sketch2" against normal through all contours A0 | A1
fillet "Fillet2" radius 1.5875 1 edges at (0, 11.1521, -23.2593)
properties part number "bearing holder"
